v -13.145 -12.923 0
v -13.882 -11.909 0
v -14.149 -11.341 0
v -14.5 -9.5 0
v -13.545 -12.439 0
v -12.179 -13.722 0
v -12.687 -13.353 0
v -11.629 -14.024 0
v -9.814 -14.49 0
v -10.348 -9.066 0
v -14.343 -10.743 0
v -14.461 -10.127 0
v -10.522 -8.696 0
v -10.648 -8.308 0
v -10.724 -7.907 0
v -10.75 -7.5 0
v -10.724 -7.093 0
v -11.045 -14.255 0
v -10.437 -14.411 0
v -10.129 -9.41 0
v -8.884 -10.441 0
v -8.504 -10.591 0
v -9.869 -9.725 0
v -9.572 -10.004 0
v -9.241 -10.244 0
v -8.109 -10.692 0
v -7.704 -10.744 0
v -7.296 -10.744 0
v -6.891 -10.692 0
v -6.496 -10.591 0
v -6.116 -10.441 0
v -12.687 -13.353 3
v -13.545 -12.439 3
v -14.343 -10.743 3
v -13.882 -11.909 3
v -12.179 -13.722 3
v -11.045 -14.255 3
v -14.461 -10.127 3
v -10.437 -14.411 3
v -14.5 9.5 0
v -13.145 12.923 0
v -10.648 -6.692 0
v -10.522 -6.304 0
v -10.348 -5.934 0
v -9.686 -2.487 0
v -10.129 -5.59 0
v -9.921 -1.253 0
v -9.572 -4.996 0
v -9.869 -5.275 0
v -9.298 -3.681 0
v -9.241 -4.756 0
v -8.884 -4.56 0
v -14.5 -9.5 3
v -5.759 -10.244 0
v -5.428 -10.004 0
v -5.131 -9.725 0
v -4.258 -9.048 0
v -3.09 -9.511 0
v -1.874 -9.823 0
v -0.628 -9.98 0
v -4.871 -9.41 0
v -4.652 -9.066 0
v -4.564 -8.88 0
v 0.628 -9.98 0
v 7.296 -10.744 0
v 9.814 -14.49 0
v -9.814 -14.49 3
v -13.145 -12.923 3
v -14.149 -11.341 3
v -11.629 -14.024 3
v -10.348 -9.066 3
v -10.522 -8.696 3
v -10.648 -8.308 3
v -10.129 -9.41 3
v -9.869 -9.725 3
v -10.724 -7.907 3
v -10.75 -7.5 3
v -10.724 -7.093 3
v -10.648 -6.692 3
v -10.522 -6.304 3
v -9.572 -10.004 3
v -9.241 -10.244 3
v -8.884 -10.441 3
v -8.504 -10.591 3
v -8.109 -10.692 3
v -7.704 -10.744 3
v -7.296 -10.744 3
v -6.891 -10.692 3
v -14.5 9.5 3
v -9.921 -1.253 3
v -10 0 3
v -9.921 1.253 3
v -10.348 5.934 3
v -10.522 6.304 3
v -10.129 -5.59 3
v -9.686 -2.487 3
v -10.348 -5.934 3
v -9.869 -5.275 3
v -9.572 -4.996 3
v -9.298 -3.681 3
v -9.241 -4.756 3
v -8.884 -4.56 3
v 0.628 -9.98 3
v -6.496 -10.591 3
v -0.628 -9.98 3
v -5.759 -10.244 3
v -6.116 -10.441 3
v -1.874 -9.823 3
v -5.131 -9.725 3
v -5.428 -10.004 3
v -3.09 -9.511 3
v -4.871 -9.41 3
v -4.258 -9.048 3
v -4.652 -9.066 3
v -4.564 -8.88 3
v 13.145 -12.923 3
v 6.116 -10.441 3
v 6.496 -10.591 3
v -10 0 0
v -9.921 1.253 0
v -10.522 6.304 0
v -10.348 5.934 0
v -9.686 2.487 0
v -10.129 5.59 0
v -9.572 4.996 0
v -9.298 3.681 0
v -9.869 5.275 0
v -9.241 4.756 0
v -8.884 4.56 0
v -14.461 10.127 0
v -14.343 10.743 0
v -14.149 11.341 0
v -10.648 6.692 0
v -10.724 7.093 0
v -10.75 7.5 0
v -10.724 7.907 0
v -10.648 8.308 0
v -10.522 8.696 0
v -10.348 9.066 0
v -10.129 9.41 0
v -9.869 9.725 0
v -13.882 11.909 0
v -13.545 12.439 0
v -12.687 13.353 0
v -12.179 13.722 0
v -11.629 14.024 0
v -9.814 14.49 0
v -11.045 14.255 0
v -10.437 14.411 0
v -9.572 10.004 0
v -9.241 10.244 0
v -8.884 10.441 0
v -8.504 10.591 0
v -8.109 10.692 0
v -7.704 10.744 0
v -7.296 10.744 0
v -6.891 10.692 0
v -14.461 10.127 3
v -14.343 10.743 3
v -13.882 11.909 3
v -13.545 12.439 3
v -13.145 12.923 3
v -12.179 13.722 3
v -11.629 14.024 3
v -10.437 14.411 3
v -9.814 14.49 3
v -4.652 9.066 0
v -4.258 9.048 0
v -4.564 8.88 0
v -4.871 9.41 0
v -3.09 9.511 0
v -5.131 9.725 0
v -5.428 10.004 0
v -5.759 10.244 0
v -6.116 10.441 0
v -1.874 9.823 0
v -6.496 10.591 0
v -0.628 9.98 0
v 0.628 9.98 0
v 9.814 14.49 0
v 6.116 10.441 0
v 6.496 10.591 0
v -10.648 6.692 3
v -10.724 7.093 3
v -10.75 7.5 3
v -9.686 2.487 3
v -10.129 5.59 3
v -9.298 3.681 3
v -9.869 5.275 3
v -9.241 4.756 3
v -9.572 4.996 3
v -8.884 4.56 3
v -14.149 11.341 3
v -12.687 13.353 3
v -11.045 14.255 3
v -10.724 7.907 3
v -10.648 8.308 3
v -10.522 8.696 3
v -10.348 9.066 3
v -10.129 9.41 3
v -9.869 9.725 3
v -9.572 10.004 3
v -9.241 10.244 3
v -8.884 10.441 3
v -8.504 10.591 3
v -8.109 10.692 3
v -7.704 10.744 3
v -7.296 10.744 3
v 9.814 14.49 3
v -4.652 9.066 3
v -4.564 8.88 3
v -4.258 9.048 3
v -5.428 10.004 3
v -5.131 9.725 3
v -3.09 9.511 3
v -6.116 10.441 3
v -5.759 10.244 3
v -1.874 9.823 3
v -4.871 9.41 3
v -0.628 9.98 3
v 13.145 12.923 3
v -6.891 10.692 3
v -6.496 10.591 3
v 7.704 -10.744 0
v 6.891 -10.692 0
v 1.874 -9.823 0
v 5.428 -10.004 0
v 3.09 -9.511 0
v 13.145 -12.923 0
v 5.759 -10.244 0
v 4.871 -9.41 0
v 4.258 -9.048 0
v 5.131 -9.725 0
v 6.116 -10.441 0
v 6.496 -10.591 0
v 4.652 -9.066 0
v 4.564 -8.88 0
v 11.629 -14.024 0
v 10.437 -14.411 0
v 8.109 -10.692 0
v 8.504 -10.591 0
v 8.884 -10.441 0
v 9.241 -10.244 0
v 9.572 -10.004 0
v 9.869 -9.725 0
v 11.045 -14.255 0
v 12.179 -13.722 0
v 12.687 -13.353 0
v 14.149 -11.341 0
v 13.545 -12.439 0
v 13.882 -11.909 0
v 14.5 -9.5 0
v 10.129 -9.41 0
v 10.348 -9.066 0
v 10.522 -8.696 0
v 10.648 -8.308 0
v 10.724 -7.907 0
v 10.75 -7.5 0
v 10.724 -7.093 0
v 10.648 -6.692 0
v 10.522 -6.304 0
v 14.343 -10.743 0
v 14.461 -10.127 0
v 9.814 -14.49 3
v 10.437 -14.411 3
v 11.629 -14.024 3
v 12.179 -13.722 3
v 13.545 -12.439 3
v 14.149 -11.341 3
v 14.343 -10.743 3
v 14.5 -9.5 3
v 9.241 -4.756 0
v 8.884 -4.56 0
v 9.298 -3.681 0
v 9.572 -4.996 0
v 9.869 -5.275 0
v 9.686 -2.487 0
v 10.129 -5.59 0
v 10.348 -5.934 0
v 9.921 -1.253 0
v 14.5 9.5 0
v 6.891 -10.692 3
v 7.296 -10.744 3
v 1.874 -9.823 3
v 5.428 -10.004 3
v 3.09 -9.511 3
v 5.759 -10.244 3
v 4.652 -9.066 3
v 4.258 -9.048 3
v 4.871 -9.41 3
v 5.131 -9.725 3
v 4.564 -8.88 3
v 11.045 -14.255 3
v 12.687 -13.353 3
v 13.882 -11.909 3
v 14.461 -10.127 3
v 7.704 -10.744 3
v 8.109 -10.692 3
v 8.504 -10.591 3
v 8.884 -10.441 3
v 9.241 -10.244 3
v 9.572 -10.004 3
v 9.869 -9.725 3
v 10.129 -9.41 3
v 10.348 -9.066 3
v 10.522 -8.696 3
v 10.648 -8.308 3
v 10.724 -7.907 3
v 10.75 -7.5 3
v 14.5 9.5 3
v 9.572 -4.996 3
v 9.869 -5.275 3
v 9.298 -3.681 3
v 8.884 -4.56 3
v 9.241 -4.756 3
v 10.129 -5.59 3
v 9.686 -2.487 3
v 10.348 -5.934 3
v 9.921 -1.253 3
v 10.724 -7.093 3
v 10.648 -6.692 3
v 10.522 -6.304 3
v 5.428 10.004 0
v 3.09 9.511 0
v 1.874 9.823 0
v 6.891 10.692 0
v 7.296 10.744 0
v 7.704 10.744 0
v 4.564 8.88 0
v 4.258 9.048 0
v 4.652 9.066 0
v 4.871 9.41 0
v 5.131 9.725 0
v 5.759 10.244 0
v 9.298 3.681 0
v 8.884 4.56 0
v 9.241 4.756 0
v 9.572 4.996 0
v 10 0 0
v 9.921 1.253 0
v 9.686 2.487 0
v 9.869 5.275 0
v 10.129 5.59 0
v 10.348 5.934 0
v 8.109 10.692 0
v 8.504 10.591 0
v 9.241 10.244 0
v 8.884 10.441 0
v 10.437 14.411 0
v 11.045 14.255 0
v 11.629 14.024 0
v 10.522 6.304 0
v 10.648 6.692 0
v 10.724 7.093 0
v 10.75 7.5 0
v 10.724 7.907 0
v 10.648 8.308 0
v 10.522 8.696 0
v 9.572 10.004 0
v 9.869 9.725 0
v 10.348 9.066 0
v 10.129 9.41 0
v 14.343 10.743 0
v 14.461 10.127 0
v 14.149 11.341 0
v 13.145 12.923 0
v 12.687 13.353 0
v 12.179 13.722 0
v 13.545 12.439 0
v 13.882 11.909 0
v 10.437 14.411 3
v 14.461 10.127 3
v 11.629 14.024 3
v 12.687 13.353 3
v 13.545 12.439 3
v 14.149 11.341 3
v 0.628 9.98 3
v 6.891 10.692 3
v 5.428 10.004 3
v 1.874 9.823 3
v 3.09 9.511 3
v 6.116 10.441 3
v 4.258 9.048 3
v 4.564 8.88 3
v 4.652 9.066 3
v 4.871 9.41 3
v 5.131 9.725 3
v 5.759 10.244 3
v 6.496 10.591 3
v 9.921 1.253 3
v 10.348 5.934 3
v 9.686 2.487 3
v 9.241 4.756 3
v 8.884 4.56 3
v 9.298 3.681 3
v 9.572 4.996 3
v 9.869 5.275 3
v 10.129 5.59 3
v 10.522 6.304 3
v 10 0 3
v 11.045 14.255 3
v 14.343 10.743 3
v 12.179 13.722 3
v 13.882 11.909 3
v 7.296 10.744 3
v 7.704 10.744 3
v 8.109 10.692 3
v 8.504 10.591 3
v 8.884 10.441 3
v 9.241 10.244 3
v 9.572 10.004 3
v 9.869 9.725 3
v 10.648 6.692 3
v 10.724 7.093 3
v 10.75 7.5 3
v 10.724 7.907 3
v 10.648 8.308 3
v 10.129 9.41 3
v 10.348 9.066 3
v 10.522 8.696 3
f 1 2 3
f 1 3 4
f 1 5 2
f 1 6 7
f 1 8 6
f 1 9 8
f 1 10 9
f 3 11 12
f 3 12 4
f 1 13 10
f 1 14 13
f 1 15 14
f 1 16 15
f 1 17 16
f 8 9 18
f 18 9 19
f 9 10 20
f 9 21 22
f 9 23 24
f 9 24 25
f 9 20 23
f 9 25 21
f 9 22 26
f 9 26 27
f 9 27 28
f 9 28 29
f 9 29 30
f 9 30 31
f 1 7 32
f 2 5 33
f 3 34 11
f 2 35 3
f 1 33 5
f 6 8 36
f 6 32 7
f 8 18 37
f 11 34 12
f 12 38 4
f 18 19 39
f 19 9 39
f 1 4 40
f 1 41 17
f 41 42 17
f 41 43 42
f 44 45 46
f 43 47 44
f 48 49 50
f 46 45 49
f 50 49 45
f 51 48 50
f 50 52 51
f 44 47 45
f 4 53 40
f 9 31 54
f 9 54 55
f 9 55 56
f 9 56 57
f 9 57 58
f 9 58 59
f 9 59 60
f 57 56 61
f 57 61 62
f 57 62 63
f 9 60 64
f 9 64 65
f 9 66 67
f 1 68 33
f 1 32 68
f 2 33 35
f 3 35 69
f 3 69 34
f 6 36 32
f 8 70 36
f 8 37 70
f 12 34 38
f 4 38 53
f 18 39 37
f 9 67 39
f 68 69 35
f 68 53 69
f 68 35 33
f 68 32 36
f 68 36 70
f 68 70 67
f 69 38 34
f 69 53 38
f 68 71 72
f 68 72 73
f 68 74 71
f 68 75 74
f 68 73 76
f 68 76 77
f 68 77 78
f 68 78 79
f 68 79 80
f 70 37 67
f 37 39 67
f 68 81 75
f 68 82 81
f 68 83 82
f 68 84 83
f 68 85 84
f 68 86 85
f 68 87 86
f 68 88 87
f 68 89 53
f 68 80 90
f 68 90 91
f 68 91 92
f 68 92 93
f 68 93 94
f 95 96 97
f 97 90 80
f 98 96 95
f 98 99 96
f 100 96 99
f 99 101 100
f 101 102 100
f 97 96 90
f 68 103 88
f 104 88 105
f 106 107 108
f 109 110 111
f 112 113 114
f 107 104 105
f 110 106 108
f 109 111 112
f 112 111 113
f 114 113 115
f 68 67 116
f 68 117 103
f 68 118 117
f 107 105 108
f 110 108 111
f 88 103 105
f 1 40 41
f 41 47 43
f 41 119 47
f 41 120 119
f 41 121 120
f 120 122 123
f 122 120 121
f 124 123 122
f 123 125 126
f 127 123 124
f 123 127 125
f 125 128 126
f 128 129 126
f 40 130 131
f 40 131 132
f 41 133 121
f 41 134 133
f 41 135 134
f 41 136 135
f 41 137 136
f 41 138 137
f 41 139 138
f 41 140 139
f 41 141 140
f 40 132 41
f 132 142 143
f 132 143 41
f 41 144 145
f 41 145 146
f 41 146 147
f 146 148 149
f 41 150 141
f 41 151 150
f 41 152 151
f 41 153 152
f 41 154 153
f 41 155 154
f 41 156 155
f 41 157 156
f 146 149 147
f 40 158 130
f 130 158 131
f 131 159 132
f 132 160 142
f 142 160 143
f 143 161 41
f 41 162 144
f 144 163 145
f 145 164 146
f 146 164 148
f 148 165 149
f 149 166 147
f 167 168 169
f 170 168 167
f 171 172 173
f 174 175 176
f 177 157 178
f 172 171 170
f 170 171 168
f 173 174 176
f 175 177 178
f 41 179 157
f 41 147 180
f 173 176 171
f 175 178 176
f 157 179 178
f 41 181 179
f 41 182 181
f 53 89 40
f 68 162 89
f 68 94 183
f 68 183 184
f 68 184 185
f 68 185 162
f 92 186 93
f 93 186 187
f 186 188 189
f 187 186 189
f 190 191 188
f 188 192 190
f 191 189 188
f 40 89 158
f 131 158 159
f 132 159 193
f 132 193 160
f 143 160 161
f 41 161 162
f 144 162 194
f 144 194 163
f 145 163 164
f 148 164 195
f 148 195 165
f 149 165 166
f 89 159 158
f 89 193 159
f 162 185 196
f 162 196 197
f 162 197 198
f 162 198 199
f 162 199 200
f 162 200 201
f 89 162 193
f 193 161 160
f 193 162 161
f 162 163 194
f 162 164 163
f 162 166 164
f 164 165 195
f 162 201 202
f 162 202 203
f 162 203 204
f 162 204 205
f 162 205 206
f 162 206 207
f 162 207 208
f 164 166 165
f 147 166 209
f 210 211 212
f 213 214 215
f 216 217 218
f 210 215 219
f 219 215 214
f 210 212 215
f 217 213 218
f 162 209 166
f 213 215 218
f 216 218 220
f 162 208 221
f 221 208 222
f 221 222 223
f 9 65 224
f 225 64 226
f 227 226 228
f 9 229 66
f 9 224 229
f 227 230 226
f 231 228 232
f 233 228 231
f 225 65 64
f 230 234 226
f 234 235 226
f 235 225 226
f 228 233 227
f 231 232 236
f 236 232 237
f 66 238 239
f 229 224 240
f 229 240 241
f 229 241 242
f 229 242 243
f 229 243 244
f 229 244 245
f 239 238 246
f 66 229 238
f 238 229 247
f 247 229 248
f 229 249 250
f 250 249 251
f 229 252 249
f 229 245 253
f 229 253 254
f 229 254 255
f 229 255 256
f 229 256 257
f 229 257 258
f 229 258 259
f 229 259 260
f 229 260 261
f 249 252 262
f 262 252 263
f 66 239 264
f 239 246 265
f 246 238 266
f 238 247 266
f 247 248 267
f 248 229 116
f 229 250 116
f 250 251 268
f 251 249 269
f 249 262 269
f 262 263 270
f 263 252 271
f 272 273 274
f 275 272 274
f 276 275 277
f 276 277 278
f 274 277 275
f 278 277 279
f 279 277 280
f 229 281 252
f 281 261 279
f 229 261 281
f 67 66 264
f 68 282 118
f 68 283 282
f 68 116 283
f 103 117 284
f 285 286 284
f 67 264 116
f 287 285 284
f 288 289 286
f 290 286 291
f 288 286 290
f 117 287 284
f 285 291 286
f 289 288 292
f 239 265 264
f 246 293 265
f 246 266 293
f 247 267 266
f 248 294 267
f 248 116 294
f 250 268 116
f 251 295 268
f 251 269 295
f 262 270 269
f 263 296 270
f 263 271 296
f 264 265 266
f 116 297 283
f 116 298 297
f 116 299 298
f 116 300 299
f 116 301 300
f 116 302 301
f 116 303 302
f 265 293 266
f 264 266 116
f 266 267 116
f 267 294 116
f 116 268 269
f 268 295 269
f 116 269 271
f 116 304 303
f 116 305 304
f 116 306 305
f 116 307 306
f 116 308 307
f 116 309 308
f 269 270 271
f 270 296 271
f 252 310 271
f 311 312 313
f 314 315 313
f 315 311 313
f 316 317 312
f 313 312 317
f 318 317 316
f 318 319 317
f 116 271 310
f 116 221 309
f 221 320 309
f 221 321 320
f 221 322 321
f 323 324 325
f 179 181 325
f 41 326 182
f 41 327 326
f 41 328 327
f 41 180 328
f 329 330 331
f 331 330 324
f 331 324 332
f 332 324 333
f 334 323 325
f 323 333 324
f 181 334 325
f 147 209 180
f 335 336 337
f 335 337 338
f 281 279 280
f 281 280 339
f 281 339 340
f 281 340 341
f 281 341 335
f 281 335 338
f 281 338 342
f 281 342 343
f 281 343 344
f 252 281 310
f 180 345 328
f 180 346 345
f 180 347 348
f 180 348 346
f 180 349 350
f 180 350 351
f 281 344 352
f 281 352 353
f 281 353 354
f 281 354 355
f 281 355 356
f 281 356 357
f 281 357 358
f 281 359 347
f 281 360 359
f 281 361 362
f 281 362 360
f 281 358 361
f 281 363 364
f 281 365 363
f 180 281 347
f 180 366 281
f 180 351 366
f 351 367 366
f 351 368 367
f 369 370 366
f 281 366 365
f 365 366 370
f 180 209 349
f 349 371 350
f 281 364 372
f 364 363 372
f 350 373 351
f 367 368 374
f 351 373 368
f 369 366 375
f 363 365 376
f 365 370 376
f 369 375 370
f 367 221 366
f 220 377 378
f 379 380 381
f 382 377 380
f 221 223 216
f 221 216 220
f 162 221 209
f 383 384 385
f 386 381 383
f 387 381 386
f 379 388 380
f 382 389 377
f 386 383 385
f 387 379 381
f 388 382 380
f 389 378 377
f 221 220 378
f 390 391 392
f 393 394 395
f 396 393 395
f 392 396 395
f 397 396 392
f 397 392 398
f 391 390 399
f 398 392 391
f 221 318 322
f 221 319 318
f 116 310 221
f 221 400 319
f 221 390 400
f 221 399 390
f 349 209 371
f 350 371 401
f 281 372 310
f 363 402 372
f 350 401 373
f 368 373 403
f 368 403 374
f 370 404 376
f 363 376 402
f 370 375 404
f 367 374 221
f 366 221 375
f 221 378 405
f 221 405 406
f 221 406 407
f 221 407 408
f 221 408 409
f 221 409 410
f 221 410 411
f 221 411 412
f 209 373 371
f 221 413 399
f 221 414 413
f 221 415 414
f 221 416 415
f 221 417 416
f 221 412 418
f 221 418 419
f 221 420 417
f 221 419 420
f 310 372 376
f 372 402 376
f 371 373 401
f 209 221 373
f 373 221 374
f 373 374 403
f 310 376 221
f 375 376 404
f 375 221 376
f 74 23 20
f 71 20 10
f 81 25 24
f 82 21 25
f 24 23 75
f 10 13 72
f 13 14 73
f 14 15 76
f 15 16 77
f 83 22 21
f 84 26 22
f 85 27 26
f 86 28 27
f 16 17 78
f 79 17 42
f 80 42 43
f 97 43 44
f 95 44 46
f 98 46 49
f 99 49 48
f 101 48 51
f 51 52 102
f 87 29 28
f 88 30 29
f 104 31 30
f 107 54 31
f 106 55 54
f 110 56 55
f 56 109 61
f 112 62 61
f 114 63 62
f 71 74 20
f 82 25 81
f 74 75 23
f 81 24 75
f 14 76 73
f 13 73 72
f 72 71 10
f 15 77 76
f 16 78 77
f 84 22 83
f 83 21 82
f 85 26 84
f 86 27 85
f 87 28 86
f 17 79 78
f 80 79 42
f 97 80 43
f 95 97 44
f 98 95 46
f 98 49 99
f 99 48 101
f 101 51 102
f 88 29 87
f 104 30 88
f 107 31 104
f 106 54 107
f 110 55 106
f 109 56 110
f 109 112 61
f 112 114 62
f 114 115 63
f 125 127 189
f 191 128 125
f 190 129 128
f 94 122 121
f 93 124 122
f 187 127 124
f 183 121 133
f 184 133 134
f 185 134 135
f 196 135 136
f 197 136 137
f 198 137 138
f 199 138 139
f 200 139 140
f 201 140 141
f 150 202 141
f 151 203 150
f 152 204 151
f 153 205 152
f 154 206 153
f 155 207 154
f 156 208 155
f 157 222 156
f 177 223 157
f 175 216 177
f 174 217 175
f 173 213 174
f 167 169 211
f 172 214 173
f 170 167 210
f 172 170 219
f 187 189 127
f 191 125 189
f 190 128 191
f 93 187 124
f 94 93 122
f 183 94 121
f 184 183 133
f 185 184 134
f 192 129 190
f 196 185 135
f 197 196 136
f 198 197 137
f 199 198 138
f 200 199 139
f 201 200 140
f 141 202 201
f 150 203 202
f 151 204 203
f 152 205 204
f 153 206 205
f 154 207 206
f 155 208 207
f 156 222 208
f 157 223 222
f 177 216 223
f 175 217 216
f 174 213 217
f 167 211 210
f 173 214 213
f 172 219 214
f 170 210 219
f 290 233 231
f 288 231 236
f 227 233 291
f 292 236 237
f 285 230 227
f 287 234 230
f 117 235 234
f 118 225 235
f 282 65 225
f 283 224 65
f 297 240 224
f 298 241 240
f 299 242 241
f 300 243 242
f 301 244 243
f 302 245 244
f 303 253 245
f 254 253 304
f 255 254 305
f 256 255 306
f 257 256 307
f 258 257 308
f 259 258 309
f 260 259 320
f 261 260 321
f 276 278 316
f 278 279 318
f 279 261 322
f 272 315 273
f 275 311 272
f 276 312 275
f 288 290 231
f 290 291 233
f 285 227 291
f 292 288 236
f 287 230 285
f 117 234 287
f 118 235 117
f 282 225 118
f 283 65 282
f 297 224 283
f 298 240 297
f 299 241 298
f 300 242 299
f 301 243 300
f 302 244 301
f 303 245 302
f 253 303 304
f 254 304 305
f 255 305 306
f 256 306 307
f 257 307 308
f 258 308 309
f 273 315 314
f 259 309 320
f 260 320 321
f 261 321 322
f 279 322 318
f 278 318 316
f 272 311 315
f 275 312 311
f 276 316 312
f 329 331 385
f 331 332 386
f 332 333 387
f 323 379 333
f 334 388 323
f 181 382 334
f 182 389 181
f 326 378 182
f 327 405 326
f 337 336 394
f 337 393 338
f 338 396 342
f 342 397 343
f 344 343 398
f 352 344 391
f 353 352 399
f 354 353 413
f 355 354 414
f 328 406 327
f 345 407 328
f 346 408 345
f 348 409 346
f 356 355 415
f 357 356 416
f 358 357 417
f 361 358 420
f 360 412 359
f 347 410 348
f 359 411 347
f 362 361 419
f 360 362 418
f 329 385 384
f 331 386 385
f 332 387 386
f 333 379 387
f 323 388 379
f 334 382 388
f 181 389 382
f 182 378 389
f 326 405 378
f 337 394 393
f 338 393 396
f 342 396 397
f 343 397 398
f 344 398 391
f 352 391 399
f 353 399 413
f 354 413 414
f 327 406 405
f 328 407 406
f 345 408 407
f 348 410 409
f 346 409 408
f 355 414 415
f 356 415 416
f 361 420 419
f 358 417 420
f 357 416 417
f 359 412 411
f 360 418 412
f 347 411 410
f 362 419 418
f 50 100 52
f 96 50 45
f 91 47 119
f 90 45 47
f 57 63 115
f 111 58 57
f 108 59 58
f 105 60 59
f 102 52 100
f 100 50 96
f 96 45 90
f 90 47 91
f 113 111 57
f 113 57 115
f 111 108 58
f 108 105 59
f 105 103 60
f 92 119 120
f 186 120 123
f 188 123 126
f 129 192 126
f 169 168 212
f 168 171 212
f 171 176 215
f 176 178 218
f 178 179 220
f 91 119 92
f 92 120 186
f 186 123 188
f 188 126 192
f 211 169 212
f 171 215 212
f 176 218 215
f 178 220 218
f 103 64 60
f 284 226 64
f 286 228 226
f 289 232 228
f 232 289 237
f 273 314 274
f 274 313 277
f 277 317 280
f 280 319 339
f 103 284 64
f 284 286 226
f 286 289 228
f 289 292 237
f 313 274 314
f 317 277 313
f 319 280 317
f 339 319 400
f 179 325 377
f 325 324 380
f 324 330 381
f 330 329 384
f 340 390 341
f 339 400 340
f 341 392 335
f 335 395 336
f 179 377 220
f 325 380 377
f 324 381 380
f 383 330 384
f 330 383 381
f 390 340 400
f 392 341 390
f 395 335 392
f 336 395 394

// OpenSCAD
$fn = 50;

difference() {
	union() {
		hull() {
			translate(v = [-9.5, 9.5, 0]) {
				cylinder(h = 3, r = 5);
			}
			translate(v = [9.5, 9.5, 0]) {
				cylinder(h = 3, r = 5);
			}
			translate(v = [-9.5, -9.5, 0]) {
				cylinder(h = 3, r = 5);
			}
			translate(v = [9.5, -9.5, 0]) {
				cylinder(h = 3, r = 5);
			}
		}
	}
	union() {
		translate(v = [-7.5, -7.5, -100.0]) {
			cylinder(h = 200, r = 3.25);
		}
		translate(v = [-7.5, 7.5, -100.0]) {
			cylinder(h = 200, r = 3.25);
		}
		translate(v = [7.5, -7.5, -100.0]) {
			cylinder(h = 200, r = 3.25);
		}
		translate(v = [7.5, 7.5, -100.0]) {
			cylinder(h = 200, r = 3.25);
		}
		translate(v = [-7.5, -7.5, -100.0]) {
			cylinder(h = 200, r = 1.8);
		}
		translate(v = [-7.5, 7.5, -100.0]) {
			cylinder(h = 200, r = 1.8);
		}
		translate(v = [7.5, -7.5, -100.0]) {
			cylinder(h = 200, r = 1.8);
		}
		translate(v = [7.5, 7.5, -100.0]) {
			cylinder(h = 200, r = 1.8);
		}
		cylinder(h = 3, r = 10.0);
	}
}
